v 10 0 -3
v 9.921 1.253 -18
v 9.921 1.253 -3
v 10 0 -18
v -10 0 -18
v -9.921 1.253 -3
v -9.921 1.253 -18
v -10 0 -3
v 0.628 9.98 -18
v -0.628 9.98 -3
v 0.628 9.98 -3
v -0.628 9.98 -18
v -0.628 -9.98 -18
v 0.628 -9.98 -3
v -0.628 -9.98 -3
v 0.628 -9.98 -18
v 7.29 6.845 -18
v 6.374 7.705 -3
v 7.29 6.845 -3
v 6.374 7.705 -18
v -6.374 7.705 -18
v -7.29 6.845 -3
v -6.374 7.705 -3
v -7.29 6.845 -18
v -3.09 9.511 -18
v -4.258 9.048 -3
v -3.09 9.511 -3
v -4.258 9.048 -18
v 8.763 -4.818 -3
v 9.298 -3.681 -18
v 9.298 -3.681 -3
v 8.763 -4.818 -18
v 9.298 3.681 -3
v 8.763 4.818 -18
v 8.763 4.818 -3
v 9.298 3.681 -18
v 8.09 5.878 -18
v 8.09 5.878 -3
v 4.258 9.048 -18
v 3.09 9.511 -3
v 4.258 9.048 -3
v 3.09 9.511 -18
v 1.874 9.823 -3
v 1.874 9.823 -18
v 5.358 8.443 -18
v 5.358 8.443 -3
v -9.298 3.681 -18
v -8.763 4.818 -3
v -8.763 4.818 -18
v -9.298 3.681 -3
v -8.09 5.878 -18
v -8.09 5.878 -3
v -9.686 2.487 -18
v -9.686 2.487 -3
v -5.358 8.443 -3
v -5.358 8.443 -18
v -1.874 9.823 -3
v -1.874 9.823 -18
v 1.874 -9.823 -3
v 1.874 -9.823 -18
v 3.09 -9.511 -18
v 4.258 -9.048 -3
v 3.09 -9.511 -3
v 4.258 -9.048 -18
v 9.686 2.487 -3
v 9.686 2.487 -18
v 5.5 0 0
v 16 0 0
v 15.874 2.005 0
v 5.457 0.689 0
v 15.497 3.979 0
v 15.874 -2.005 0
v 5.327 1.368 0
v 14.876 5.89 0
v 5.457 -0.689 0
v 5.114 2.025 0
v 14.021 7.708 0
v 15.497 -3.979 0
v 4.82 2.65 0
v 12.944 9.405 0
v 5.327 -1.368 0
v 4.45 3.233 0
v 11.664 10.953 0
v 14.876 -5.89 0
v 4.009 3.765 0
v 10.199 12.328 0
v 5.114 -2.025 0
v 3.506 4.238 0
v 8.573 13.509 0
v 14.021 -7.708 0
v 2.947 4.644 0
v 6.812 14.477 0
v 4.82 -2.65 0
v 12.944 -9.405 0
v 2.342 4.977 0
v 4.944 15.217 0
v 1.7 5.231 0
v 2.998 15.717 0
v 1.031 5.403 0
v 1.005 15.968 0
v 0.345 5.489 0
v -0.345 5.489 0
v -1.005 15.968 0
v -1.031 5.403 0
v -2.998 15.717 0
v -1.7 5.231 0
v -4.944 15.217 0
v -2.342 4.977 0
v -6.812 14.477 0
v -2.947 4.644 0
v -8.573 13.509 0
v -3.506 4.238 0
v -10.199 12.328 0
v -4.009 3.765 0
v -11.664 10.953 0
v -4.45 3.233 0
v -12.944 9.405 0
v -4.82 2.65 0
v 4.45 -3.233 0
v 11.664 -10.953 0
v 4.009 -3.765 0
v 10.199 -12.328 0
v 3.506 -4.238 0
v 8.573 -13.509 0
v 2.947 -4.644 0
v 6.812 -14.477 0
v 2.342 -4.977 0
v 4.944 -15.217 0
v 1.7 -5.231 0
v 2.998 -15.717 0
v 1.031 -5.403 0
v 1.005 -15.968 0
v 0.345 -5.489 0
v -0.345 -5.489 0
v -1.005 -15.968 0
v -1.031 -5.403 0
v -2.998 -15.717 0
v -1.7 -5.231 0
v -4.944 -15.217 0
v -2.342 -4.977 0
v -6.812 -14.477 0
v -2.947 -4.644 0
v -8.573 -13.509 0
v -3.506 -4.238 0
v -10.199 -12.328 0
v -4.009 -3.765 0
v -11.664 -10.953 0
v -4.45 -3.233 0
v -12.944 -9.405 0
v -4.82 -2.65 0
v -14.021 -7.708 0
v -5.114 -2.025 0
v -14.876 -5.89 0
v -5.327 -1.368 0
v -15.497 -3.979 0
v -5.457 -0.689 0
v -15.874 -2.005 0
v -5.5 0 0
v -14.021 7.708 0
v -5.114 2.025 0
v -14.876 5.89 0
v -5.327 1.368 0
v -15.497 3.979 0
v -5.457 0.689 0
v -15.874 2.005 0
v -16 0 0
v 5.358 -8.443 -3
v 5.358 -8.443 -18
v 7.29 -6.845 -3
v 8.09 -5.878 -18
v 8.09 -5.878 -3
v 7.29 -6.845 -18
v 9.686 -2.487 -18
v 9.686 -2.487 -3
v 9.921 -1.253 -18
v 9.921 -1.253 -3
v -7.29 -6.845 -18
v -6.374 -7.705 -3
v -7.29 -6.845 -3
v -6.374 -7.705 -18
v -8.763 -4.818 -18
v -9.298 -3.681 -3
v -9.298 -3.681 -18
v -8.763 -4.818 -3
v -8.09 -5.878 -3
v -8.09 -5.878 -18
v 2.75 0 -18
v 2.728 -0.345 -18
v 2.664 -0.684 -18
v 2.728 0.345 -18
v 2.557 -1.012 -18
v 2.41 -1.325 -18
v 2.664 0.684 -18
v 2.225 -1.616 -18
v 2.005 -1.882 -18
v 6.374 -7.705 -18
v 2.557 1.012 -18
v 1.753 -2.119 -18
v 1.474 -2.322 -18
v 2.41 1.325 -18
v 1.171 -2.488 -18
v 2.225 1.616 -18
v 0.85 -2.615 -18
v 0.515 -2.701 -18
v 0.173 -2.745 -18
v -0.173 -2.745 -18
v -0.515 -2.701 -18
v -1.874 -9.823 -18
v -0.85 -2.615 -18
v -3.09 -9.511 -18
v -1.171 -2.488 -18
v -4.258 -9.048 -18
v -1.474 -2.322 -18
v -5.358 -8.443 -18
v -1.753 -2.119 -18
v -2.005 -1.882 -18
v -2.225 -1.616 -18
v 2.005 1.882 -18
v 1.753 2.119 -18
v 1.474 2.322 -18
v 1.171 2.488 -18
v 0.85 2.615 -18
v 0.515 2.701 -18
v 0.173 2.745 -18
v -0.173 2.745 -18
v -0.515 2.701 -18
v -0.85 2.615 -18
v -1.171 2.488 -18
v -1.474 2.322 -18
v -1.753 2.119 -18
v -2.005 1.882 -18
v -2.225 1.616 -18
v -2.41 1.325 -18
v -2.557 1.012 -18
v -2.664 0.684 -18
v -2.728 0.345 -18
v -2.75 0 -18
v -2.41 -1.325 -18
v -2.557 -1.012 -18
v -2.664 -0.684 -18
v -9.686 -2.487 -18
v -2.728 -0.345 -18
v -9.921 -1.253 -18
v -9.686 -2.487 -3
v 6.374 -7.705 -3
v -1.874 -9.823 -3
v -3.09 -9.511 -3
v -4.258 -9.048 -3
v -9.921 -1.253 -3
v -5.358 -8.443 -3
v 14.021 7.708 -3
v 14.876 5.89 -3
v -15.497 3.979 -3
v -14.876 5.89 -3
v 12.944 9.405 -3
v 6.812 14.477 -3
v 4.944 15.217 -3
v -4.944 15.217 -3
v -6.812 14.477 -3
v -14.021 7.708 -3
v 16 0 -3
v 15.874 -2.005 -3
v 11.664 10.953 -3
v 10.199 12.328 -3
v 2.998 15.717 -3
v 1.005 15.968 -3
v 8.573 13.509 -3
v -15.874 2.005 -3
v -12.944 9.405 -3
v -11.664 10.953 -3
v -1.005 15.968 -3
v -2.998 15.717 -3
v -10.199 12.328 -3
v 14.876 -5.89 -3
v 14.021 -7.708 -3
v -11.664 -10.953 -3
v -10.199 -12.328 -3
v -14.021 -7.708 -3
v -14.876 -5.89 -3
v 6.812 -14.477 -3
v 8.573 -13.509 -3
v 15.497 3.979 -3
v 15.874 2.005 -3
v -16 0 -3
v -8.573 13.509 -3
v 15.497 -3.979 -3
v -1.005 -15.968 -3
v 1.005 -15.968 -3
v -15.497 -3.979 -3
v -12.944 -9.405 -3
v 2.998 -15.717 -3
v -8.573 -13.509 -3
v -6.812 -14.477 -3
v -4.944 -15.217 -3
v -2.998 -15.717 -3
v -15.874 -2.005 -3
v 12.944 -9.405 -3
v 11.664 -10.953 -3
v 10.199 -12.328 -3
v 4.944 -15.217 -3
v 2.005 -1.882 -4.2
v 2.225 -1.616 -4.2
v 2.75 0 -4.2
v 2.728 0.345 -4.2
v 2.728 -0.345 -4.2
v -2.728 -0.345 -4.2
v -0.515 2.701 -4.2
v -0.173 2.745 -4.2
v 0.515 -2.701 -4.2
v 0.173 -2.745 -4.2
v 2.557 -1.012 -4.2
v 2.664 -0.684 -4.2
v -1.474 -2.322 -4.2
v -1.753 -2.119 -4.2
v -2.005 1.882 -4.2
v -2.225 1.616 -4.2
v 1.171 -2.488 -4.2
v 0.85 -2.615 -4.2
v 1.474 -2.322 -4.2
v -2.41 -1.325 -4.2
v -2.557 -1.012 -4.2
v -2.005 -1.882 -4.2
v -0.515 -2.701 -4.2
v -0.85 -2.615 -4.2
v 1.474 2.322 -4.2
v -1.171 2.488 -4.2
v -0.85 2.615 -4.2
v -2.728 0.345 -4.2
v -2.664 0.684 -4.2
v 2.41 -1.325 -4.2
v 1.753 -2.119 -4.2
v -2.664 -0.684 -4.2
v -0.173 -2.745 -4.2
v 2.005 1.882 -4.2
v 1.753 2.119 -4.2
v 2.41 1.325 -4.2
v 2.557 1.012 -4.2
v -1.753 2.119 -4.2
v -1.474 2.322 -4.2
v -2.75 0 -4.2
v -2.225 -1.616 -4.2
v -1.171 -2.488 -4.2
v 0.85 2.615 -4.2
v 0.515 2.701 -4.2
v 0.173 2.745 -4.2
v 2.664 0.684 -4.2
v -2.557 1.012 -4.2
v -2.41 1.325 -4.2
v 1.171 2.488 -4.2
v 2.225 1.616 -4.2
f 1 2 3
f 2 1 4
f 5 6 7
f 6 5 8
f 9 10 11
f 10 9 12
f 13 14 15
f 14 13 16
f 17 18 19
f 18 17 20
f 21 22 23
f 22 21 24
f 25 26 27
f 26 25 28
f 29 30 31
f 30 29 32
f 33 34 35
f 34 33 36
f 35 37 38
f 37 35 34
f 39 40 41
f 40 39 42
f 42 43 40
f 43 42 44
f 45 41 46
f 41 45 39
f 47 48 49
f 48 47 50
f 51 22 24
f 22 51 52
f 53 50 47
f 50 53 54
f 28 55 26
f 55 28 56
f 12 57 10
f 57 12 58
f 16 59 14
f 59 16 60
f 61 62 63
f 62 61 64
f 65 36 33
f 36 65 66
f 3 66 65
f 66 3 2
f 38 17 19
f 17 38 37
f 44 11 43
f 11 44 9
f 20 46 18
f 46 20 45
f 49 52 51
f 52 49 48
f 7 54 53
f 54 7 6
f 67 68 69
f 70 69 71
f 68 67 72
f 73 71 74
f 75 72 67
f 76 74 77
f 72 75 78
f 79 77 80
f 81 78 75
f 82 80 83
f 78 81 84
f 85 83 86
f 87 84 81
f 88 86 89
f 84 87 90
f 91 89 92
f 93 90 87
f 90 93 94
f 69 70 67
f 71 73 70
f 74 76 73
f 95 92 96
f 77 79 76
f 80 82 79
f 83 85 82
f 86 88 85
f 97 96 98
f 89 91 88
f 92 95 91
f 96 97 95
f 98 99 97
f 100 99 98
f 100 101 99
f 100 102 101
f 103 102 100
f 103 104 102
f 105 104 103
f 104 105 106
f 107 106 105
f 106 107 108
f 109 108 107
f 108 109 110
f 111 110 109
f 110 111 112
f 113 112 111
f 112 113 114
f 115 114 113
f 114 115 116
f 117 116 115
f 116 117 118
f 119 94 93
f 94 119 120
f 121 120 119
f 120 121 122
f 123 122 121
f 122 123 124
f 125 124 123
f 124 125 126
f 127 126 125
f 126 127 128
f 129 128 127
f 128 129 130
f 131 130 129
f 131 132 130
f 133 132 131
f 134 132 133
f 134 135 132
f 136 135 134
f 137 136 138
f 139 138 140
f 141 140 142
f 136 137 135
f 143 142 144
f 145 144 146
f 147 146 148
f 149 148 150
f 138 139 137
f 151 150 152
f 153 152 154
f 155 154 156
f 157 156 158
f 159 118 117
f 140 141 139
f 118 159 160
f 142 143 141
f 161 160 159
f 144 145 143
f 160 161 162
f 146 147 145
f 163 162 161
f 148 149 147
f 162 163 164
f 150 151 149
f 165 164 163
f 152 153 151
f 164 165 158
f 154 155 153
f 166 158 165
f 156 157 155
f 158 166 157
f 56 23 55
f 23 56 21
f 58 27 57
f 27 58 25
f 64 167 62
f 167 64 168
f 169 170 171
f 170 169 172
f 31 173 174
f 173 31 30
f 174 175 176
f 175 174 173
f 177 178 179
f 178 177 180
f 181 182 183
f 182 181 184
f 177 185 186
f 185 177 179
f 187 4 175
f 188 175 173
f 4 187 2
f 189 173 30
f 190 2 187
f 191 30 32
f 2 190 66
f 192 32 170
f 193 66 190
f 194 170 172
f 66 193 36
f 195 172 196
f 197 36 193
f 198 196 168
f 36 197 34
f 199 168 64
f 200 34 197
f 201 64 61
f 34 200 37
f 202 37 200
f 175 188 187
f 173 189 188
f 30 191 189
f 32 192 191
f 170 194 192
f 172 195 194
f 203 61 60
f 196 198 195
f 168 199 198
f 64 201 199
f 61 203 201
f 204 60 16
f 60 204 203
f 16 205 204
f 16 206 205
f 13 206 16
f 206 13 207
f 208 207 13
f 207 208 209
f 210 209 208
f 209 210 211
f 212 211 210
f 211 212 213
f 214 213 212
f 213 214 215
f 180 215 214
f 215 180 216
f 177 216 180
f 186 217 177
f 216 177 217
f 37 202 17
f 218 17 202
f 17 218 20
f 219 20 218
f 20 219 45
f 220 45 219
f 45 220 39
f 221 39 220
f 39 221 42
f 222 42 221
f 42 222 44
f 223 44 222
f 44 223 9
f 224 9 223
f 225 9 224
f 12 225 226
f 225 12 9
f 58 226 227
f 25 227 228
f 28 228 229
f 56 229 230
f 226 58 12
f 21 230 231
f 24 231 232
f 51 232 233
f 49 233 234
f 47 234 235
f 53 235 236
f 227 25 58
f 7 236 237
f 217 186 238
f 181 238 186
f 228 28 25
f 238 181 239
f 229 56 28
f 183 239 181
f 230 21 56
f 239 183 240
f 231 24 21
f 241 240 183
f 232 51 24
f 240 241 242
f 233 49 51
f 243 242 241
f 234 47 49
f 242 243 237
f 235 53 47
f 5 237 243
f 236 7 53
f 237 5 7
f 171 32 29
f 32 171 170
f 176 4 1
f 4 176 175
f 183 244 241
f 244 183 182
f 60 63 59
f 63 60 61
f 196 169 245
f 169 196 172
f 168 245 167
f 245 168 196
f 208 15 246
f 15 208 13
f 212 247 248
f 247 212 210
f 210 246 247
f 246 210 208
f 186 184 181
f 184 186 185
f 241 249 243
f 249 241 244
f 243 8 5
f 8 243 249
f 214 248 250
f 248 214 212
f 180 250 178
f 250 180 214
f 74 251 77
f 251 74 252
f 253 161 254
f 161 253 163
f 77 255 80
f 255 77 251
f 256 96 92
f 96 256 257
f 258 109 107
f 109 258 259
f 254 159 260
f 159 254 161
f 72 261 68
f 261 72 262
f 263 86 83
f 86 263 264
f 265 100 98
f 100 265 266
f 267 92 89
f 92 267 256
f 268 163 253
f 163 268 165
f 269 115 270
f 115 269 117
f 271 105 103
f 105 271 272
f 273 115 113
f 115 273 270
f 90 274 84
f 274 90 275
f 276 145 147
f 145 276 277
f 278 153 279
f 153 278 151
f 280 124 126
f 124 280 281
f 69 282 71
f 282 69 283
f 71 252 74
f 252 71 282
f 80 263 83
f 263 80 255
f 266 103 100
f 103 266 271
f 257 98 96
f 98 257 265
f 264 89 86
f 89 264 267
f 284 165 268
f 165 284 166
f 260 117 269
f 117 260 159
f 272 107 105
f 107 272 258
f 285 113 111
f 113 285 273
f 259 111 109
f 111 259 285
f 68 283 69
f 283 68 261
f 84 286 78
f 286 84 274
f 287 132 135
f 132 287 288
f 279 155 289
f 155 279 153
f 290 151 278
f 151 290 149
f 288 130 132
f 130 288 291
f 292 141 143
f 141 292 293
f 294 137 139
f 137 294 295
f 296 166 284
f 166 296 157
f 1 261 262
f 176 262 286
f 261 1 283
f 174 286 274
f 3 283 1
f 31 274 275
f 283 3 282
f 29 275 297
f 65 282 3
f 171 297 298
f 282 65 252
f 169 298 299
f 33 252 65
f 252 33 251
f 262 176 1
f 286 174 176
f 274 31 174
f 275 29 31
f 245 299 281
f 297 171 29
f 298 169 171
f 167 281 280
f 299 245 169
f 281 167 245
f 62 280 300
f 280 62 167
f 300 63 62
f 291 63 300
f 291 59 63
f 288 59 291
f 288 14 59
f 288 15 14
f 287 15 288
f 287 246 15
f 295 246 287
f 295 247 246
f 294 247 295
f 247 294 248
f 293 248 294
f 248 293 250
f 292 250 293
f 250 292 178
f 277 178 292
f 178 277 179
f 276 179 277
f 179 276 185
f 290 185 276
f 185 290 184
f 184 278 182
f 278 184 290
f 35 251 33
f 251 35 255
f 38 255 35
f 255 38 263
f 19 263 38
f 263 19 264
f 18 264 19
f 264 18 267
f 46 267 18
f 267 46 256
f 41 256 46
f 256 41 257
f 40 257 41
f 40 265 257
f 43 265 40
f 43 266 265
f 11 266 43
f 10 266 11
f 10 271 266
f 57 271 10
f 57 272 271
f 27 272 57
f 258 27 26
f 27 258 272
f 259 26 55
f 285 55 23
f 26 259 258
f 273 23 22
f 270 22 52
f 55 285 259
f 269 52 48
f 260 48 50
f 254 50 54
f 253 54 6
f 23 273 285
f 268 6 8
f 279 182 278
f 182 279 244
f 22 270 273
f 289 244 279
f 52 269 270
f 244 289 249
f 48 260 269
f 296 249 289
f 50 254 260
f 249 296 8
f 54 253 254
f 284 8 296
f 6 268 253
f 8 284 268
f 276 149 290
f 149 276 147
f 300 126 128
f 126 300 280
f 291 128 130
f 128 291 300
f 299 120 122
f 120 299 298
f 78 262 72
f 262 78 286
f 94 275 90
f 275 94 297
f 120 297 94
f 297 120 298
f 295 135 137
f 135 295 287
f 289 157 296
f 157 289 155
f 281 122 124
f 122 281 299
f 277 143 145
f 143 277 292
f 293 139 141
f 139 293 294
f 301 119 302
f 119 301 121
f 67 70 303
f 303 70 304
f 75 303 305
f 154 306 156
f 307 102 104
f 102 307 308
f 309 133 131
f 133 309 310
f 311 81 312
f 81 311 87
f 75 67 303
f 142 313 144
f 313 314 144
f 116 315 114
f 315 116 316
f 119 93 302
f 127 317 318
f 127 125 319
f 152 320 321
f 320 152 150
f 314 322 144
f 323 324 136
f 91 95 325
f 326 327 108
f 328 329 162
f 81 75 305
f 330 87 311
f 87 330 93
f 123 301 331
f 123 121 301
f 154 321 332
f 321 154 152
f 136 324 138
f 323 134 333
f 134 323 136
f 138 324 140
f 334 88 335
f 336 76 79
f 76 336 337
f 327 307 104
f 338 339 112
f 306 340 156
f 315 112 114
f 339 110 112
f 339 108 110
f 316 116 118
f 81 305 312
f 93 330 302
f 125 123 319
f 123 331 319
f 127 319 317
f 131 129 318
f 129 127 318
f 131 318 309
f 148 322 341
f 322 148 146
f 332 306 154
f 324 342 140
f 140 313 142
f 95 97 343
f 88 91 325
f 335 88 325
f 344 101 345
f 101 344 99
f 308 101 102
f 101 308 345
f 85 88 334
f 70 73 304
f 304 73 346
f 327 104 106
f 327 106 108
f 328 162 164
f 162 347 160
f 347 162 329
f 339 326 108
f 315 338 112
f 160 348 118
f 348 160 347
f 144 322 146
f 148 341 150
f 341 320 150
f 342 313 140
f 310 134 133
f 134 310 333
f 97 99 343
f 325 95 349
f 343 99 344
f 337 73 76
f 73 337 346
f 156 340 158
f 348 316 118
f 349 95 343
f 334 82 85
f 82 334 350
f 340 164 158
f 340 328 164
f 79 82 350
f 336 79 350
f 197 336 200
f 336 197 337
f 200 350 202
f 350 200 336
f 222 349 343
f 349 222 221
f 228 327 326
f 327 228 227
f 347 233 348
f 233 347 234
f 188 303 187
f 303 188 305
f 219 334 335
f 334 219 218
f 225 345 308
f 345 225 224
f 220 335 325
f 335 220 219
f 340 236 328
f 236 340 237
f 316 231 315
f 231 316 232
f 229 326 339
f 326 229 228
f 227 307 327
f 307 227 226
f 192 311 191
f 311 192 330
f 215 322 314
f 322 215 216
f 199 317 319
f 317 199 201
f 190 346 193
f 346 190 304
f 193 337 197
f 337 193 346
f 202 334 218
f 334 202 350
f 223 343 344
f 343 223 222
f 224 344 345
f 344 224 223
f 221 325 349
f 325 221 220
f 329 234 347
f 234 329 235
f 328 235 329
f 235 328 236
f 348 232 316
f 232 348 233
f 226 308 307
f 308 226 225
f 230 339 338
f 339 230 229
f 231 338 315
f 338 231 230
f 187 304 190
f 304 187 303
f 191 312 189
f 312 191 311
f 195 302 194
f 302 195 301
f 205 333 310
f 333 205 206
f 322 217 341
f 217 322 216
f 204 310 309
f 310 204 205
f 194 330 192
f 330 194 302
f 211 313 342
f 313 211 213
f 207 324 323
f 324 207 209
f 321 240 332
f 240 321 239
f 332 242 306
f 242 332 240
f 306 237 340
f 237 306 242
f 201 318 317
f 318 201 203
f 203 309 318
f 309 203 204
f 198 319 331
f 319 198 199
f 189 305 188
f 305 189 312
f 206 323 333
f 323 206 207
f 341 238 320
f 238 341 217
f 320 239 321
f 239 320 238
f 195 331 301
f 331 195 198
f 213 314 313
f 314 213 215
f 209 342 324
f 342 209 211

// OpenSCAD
$fn = 50;


difference() {
	union() {
		translate(v = [0, 0, -18.0000000000]) {
			cylinder(h = 18, r = 10.0000000000);
		}
		translate(v = [0, 0, -3.0000000000]) {
			cylinder(h = 3, r = 16.0000000000);
		}
	}
	union() {
		translate(v = [0, 0, 0]) {
			rotate(a = [0, 0, 0]) {
				difference() {
					union() {
						#translate(v = [0, 0, -18.0000000000]) {
							cylinder(h = 18, r = 2.2500000000);
						}
						#translate(v = [0, 0, -4.2000000000]) {
							cylinder(h = 4.2000000000, r = 10.0000000000, r1 = 2.7500000000, r2 = 5.5000000000);
						}
						#translate(v = [0, 0, -18.0000000000]) {
							cylinder(h = 18, r = 2.7500000000);
						}
						#translate(v = [0, 0, -18.0000000000]) {
							cylinder(h = 18, r = 2.2500000000);
						}
					}
					union();
				}
			}
		}
	}
}
